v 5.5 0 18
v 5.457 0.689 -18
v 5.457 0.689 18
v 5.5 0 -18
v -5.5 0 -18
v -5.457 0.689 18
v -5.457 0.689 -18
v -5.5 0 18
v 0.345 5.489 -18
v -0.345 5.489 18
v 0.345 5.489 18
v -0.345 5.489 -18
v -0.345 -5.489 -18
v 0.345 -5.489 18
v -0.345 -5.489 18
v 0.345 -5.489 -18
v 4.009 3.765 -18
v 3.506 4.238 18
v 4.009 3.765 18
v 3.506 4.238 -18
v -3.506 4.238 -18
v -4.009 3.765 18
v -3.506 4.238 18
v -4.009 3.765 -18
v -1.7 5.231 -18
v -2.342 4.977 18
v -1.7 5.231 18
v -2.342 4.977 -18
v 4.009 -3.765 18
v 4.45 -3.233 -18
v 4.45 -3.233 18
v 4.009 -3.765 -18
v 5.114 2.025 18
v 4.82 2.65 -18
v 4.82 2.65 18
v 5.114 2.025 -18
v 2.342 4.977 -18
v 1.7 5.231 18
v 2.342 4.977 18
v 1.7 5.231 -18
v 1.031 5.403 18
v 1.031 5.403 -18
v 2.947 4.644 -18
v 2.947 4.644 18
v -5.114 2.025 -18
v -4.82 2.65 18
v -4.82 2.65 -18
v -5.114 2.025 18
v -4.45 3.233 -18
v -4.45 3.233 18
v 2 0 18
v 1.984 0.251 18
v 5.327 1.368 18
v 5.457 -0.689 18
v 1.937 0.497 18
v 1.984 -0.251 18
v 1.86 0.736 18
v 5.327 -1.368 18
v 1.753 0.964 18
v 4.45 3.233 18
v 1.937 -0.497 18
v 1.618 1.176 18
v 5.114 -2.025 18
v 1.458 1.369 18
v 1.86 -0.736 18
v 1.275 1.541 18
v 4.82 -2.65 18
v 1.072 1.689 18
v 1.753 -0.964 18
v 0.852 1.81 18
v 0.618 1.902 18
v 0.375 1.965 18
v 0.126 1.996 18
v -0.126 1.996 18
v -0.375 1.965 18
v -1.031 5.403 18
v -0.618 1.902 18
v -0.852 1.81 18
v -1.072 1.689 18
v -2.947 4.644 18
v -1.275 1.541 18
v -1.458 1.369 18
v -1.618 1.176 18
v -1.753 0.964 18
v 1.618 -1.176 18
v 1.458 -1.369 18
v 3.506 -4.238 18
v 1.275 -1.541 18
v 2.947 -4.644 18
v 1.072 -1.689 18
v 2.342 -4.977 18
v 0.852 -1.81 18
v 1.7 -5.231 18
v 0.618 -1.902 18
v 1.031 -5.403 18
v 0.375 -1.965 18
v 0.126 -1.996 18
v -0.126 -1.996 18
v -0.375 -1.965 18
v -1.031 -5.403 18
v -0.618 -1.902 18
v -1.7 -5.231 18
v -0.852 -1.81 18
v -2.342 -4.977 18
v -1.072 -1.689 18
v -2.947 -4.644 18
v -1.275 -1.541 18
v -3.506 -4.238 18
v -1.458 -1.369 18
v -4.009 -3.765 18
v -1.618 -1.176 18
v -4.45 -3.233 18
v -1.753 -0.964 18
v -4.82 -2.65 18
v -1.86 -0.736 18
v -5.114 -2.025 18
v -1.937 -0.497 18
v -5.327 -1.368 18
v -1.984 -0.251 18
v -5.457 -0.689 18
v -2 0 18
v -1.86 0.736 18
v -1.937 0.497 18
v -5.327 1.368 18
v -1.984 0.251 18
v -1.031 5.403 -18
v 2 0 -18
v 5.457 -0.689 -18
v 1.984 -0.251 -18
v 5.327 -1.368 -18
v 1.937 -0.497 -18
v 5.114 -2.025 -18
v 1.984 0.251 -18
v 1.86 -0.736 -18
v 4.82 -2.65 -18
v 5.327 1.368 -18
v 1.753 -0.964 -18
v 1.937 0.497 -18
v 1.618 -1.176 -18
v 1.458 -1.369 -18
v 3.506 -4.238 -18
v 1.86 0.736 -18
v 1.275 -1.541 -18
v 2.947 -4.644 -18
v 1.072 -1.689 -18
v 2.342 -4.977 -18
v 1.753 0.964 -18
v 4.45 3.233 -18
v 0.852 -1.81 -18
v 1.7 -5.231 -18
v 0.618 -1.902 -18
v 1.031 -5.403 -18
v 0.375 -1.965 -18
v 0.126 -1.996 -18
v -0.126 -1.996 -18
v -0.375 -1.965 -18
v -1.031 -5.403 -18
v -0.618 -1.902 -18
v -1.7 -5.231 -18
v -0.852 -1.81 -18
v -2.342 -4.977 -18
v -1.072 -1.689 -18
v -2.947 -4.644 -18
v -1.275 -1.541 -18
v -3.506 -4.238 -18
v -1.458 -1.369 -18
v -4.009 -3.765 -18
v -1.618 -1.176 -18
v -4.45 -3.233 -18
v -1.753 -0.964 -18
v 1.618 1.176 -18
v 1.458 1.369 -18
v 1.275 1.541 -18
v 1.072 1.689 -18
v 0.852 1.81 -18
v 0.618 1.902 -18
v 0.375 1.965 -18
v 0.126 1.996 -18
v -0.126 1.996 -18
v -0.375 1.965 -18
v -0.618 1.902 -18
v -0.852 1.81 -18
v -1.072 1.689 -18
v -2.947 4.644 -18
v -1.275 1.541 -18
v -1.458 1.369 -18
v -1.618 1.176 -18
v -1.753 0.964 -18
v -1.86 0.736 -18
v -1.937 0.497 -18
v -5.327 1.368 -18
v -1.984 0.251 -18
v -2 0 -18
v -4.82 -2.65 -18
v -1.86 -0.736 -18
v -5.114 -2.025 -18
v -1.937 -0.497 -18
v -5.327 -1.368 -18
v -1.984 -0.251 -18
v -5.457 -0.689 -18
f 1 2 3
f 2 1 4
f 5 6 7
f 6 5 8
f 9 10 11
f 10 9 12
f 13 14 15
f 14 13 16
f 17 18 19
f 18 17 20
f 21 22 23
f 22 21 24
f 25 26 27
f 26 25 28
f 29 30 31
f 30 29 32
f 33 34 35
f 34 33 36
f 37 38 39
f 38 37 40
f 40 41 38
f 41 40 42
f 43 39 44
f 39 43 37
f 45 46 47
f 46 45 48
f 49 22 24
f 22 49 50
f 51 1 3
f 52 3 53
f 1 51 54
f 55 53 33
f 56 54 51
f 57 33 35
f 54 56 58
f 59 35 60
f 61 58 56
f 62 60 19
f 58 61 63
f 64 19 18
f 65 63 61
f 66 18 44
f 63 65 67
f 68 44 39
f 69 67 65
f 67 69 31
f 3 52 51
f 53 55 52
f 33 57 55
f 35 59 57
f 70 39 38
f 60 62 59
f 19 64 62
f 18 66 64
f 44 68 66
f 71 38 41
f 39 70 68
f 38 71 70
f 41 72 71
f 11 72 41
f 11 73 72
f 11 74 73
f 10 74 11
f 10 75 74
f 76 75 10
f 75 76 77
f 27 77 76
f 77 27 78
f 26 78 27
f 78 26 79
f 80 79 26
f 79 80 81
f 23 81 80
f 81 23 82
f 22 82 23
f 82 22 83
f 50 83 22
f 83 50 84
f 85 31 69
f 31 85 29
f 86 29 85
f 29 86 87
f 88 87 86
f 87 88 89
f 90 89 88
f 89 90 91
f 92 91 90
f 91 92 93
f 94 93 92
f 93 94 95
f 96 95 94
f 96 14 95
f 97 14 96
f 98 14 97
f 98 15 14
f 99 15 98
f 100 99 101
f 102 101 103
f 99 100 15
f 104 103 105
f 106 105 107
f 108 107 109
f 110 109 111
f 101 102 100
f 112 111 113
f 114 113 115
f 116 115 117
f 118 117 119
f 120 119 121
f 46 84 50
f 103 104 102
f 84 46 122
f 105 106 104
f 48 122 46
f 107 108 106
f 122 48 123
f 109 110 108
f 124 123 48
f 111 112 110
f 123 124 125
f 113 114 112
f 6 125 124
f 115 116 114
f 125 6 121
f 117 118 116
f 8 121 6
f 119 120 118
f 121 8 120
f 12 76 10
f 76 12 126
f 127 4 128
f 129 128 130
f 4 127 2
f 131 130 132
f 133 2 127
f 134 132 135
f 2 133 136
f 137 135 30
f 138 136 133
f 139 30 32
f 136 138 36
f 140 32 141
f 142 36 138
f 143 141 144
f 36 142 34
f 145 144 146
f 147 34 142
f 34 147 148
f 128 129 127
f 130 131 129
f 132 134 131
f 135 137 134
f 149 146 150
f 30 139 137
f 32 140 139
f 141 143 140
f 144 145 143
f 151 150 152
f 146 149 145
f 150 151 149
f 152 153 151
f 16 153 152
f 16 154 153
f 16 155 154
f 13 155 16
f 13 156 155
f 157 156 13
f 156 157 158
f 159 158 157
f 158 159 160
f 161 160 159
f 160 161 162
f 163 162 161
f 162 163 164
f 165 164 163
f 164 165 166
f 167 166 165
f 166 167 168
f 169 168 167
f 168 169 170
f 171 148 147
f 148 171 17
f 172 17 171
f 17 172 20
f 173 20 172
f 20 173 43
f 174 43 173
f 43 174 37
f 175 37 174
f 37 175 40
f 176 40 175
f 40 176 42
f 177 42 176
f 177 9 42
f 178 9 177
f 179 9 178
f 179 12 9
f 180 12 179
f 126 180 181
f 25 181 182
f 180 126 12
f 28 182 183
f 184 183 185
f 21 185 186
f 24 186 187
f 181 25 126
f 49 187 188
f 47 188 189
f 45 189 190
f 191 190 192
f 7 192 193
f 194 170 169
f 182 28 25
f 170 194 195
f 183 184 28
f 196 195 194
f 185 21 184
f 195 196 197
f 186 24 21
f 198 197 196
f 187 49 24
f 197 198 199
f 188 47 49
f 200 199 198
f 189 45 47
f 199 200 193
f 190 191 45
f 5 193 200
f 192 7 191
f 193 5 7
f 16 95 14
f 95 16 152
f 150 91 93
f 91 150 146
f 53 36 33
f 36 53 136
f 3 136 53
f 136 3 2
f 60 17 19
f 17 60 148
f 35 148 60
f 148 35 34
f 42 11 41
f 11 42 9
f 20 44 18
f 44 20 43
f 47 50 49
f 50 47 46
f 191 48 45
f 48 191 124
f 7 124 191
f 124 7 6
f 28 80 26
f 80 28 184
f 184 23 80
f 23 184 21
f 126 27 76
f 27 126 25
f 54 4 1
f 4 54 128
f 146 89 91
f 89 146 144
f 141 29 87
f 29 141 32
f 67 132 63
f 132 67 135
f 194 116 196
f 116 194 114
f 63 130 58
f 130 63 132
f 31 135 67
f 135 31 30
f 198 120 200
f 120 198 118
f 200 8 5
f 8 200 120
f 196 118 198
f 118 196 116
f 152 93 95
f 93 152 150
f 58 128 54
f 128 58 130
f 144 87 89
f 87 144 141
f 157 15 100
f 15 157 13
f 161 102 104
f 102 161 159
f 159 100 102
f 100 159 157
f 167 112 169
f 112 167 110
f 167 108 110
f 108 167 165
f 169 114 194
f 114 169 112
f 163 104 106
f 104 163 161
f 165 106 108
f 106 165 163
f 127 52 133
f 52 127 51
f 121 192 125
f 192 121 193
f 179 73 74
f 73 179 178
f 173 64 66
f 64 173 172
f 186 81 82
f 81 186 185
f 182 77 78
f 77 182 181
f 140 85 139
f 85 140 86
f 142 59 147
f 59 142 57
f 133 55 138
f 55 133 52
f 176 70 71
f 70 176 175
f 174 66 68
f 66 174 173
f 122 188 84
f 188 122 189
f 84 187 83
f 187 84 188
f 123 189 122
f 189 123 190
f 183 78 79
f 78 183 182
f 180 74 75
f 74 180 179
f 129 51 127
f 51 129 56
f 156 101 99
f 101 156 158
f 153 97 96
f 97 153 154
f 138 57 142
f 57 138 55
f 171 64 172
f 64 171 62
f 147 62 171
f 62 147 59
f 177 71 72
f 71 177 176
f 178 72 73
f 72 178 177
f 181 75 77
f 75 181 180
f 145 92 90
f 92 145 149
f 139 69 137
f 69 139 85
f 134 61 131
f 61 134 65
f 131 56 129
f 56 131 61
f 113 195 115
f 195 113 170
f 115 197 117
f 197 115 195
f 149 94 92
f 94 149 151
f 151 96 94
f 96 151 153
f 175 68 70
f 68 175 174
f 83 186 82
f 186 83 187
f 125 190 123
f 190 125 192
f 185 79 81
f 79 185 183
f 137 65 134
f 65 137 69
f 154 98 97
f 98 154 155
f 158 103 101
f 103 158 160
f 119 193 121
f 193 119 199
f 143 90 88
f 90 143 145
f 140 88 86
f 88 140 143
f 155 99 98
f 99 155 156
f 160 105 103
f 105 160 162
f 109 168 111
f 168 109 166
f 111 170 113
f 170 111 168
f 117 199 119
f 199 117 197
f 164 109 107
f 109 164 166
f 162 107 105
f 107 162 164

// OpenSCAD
$fn = 50;


difference() {
	union() {
		translate(v = [0, 0, -18.0000000000]) {
			cylinder(h = 36, r = 5.5000000000);
		}
	}
	union() {
		translate(v = [0, 0, -100.0000000000]) {
			cylinder(h = 200, r = 2);
		}
	}
}
